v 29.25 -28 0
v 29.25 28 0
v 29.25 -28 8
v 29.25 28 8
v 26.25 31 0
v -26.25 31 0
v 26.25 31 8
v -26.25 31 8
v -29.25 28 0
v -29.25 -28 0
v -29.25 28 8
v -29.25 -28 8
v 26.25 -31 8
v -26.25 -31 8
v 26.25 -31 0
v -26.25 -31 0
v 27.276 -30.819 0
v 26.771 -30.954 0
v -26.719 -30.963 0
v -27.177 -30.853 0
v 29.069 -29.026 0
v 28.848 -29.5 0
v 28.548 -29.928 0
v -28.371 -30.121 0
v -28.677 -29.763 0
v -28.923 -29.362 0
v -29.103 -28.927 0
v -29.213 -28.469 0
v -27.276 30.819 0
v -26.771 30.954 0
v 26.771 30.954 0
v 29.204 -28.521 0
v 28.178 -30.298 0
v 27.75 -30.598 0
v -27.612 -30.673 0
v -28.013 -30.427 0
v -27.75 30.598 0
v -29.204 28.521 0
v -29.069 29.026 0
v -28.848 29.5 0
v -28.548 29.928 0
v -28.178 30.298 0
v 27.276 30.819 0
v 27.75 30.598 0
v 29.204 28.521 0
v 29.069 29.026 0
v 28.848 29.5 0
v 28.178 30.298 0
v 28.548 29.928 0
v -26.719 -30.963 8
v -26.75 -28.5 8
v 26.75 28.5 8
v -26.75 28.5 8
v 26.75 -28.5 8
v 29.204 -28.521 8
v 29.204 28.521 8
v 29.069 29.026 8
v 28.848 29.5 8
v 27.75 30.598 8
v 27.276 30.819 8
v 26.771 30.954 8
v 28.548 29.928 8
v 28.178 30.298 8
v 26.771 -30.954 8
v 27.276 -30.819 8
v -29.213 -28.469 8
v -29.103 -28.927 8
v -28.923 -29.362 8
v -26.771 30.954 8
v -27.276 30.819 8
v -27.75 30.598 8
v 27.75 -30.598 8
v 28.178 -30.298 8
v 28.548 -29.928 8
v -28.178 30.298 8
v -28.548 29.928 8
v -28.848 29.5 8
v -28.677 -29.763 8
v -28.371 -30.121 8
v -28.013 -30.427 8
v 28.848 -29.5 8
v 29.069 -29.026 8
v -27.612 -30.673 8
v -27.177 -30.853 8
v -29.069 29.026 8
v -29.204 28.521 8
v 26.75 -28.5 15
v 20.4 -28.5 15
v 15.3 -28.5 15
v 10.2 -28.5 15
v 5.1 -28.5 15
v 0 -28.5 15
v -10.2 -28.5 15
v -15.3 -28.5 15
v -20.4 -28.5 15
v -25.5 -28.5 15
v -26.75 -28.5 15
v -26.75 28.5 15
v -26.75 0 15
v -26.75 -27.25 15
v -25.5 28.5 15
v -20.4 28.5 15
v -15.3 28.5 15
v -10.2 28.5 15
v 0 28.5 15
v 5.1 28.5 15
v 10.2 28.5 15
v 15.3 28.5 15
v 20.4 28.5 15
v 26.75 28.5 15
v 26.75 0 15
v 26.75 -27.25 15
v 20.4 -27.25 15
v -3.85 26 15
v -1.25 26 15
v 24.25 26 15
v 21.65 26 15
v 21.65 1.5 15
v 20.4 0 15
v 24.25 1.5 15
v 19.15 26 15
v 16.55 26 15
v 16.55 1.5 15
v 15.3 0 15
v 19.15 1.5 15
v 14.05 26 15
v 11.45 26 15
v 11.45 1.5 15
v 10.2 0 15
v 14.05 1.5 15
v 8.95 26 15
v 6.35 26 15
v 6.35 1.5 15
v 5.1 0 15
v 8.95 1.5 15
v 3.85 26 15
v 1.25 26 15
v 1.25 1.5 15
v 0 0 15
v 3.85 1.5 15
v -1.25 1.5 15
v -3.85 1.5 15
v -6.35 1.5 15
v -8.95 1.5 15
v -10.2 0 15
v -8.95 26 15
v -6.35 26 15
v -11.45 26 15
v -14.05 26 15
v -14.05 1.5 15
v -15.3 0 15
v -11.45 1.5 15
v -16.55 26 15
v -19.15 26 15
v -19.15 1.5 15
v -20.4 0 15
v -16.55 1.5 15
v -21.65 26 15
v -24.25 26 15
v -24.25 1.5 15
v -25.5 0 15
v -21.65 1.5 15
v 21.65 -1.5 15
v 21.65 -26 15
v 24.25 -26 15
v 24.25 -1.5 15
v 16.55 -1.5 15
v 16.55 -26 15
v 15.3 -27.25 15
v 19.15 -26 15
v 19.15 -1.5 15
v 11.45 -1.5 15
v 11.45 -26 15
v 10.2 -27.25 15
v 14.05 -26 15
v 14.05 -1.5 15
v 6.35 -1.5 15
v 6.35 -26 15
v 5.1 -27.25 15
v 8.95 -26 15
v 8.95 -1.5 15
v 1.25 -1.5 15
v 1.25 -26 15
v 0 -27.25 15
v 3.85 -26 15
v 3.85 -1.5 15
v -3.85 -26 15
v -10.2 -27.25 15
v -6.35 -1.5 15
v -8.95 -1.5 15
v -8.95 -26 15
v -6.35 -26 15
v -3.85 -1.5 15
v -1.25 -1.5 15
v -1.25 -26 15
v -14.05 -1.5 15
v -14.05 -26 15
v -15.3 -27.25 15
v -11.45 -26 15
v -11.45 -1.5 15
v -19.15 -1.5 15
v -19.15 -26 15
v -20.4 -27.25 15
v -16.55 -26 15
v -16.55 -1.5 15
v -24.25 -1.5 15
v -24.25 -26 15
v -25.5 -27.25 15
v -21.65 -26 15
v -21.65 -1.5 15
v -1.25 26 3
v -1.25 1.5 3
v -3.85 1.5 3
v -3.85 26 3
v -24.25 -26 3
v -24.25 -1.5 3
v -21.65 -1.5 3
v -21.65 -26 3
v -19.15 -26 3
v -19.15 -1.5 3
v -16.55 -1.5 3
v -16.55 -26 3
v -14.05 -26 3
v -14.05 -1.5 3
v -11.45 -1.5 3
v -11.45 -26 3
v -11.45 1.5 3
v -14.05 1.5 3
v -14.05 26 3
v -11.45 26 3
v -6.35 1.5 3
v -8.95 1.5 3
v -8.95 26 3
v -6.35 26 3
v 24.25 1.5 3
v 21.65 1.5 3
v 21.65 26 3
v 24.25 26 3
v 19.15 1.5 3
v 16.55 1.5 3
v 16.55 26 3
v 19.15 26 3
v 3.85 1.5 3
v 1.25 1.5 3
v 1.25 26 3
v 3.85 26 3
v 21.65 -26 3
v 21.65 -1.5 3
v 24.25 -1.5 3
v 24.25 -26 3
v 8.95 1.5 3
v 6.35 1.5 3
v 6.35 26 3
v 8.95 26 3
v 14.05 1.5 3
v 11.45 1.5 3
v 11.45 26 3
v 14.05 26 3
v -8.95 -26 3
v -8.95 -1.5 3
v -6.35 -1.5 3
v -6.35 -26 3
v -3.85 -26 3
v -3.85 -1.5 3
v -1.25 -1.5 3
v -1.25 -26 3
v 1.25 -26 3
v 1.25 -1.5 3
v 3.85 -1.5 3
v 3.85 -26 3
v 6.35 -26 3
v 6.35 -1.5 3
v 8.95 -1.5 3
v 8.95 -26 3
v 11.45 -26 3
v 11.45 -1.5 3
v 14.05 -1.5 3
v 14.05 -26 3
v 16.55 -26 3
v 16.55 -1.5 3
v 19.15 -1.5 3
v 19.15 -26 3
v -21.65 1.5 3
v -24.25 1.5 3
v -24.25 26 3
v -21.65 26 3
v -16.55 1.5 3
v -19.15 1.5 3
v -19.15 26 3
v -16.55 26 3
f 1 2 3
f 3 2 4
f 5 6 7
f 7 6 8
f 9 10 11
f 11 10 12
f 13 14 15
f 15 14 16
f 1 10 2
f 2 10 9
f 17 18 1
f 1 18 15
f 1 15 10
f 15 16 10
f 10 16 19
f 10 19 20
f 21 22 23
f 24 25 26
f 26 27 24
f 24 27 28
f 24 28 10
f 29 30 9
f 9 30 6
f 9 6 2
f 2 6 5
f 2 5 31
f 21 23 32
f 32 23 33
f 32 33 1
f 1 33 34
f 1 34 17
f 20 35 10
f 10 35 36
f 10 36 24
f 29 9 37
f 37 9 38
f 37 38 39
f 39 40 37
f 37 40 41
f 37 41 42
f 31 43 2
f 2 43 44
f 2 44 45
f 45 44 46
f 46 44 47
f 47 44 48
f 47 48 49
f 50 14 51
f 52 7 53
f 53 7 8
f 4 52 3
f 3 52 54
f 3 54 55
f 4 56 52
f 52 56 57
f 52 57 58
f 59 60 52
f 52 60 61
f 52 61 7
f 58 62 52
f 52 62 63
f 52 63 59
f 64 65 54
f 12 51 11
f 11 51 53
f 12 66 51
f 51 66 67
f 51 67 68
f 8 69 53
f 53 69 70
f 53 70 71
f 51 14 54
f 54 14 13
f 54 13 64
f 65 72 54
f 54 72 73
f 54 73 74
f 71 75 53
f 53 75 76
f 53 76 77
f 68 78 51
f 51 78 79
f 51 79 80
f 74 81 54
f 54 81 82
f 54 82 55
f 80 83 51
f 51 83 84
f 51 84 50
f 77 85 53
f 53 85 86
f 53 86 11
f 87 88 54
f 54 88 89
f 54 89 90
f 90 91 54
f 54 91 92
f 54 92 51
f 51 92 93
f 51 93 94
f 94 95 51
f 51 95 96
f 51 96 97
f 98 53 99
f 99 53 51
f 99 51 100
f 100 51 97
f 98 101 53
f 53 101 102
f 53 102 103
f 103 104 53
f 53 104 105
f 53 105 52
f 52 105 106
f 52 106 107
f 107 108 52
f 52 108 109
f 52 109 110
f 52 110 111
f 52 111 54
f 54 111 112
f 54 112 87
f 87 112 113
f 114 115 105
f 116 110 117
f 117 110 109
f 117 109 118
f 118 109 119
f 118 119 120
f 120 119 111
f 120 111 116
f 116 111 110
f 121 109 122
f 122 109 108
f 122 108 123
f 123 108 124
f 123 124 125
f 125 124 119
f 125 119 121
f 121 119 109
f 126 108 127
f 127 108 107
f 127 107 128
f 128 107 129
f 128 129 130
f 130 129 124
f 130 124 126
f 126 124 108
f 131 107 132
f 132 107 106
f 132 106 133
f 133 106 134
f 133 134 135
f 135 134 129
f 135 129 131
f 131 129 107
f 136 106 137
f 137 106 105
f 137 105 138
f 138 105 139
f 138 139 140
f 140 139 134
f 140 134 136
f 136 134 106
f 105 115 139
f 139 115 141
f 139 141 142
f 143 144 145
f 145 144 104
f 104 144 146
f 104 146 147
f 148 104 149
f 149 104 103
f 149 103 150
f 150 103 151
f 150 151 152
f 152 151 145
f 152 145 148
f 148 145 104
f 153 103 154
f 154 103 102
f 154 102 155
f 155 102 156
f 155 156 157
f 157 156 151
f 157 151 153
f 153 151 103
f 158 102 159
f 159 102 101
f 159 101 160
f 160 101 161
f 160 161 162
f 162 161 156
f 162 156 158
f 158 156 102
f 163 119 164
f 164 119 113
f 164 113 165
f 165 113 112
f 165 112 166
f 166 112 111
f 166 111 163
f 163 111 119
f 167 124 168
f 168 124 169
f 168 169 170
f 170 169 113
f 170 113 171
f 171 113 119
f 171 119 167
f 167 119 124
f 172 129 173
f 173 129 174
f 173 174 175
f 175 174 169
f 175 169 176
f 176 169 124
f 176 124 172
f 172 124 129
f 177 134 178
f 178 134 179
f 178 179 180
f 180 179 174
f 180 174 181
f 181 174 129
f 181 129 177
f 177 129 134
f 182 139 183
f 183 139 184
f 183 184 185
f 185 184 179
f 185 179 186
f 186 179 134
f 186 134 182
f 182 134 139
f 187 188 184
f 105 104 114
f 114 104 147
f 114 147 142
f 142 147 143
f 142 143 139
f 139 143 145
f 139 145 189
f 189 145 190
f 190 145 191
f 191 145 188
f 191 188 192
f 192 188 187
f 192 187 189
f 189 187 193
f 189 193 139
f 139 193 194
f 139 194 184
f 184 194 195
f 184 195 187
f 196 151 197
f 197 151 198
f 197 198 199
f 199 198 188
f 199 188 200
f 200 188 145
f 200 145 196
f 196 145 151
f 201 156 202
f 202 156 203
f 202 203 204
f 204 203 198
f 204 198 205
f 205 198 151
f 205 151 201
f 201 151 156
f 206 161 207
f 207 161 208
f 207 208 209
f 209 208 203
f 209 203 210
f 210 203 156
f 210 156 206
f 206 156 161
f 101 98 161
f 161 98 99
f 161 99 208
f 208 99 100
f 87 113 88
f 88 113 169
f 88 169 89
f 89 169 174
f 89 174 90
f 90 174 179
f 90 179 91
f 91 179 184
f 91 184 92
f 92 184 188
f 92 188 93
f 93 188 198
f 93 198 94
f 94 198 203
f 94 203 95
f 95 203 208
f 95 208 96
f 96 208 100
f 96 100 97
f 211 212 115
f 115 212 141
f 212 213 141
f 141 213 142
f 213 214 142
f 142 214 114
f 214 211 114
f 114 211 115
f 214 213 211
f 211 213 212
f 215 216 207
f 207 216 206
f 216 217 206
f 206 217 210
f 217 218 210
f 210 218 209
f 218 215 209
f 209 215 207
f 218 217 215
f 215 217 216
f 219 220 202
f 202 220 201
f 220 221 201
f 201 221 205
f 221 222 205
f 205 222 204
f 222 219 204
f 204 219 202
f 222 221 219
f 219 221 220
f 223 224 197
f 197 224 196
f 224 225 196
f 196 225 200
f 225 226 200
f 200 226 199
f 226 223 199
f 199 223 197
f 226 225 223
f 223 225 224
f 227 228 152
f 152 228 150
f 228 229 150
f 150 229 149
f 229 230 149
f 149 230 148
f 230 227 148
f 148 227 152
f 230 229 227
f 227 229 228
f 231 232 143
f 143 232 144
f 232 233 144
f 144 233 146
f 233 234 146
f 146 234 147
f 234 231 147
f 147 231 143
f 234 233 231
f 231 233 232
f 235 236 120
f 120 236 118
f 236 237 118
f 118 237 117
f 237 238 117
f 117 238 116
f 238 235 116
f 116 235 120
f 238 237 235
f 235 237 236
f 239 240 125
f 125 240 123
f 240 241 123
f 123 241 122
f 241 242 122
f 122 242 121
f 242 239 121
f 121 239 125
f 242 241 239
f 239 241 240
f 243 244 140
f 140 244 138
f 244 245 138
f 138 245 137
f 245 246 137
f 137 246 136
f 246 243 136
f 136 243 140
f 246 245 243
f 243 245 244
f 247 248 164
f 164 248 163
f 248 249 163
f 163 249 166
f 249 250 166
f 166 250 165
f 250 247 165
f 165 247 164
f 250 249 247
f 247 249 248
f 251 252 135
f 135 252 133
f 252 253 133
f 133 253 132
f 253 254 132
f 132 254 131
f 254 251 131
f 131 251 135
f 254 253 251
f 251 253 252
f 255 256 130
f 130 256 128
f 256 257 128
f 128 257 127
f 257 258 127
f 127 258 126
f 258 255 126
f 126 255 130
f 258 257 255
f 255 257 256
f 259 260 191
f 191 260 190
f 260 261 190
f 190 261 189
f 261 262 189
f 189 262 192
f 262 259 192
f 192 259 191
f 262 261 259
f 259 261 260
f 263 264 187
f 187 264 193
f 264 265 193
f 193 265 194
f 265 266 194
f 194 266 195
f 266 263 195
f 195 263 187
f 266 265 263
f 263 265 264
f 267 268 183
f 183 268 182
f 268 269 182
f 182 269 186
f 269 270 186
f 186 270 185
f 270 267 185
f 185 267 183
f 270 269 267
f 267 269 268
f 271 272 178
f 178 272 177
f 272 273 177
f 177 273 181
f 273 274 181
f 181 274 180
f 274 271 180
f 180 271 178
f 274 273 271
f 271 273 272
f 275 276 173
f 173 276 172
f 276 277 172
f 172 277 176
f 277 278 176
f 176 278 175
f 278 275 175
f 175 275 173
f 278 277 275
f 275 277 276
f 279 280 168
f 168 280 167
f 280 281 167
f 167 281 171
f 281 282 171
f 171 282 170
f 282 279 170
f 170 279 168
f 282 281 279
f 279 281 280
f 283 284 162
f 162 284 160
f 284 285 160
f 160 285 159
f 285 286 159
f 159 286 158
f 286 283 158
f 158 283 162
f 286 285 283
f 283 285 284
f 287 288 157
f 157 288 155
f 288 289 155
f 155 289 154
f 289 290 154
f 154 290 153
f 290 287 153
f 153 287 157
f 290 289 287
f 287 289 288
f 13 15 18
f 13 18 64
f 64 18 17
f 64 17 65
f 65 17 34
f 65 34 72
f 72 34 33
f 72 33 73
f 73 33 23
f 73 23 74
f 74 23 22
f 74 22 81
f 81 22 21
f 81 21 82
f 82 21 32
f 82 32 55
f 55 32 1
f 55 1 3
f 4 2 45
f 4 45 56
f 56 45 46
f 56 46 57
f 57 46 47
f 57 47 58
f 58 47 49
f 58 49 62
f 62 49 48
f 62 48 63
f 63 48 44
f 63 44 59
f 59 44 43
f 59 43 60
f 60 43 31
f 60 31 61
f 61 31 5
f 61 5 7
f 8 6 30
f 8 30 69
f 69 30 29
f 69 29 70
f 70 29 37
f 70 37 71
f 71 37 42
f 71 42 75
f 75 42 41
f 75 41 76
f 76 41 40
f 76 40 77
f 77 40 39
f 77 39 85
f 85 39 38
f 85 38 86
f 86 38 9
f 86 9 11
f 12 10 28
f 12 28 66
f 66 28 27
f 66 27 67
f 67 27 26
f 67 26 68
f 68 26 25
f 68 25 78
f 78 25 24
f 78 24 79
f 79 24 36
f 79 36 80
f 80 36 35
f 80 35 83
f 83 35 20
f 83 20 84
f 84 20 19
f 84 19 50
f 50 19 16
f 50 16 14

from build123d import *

# Parameters (mm, degrees)
SKETCH_1_W            = 58.5
SKETCH_1_H            = 62
EXTRUDE_1_DEPTH       = 15
SKETCH_2_W            = 58.5
SKETCH_2_H            = 62
SKETCH_2_W_2          = 53.5
SKETCH_2_H_2          = 57
CUT_EXTRUDE_1_DEPTH   = 7
SKETCH_3_W            = 2.6
SKETCH_3_H            = 24.5
CUT_EXTRUDE_1_2_DEPTH = 12
FILLET_1_R            = 3


with BuildPart() as part:
    # Эскиз1 → Бобышка-Вытянуть1 (new body)
    with BuildSketch(Plane.XY):
        Rectangle(SKETCH_1_W, SKETCH_1_H)
    extrude(amount=EXTRUDE_1_DEPTH)

    # Эскиз2 → Cut-Extrude 1 (cut)
    with BuildSketch(Plane.XY.offset(15)):
        Rectangle(SKETCH_2_W, SKETCH_2_H)
        Rectangle(SKETCH_2_W_2, SKETCH_2_H_2, mode=Mode.SUBTRACT)
    extrude(amount=-CUT_EXTRUDE_1_DEPTH, mode=Mode.SUBTRACT)

    # Эскиз3 → Cut-Extrude 1 2 (cut)
    with BuildSketch(Plane.XY.offset(15)):
        with Locations((2.55, 13.75)):
            Rectangle(SKETCH_3_W, SKETCH_3_H)
        with Locations((-2.55, 13.75)):
            Rectangle(SKETCH_3_W, SKETCH_3_H)
        with Locations((7.65, 13.75)):
            Rectangle(SKETCH_3_W, SKETCH_3_H)
        with Locations((12.75, 13.75)):
            Rectangle(SKETCH_3_W, SKETCH_3_H)
        with Locations((17.85, 13.75)):
            Rectangle(SKETCH_3_W, SKETCH_3_H)
        with Locations((22.95, 13.75)):
            Rectangle(SKETCH_3_W, SKETCH_3_H)
        with Locations((-7.65, 13.75)):
            Rectangle(SKETCH_3_W, SKETCH_3_H)
        with Locations((-12.75, 13.75)):
            Rectangle(SKETCH_3_W, SKETCH_3_H)
        with Locations((-17.85, 13.75)):
            Rectangle(SKETCH_3_W, SKETCH_3_H)
        with Locations((-22.95, 13.75)):
            Rectangle(SKETCH_3_W, SKETCH_3_H)
        with Locations((22.95, -13.75)):
            Rectangle(SKETCH_3_W, SKETCH_3_H)
        with Locations((17.85, -13.75)):
            Rectangle(SKETCH_3_W, SKETCH_3_H)
        with Locations((12.75, -13.75)):
            Rectangle(SKETCH_3_W, SKETCH_3_H)
        with Locations((7.65, -13.75)):
            Rectangle(SKETCH_3_W, SKETCH_3_H)
        with Locations((2.55, -13.75)):
            Rectangle(SKETCH_3_W, SKETCH_3_H)
        with Locations((-2.55, -13.75)):
            Rectangle(SKETCH_3_W, SKETCH_3_H)
        with Locations((-7.65, -13.75)):
            Rectangle(SKETCH_3_W, SKETCH_3_H)
        with Locations((-12.75, -13.75)):
            Rectangle(SKETCH_3_W, SKETCH_3_H)
        with Locations((-17.85, -13.75)):
            Rectangle(SKETCH_3_W, SKETCH_3_H)
        with Locations((-22.95, -13.75)):
            Rectangle(SKETCH_3_W, SKETCH_3_H)
    extrude(amount=-CUT_EXTRUDE_1_2_DEPTH, mode=Mode.SUBTRACT)

    # Скругление1
    fillet_1_edges = [part.edges().sort_by_distance(p)[0] for p in [
        (29.25, -31, 4),
        (-29.25, -31, 4),
        (-29.25, 31, 4),
        (29.25, 31, 4),
    ]]
    fillet(fillet_1_edges, radius=FILLET_1_R)


solid = part.part
